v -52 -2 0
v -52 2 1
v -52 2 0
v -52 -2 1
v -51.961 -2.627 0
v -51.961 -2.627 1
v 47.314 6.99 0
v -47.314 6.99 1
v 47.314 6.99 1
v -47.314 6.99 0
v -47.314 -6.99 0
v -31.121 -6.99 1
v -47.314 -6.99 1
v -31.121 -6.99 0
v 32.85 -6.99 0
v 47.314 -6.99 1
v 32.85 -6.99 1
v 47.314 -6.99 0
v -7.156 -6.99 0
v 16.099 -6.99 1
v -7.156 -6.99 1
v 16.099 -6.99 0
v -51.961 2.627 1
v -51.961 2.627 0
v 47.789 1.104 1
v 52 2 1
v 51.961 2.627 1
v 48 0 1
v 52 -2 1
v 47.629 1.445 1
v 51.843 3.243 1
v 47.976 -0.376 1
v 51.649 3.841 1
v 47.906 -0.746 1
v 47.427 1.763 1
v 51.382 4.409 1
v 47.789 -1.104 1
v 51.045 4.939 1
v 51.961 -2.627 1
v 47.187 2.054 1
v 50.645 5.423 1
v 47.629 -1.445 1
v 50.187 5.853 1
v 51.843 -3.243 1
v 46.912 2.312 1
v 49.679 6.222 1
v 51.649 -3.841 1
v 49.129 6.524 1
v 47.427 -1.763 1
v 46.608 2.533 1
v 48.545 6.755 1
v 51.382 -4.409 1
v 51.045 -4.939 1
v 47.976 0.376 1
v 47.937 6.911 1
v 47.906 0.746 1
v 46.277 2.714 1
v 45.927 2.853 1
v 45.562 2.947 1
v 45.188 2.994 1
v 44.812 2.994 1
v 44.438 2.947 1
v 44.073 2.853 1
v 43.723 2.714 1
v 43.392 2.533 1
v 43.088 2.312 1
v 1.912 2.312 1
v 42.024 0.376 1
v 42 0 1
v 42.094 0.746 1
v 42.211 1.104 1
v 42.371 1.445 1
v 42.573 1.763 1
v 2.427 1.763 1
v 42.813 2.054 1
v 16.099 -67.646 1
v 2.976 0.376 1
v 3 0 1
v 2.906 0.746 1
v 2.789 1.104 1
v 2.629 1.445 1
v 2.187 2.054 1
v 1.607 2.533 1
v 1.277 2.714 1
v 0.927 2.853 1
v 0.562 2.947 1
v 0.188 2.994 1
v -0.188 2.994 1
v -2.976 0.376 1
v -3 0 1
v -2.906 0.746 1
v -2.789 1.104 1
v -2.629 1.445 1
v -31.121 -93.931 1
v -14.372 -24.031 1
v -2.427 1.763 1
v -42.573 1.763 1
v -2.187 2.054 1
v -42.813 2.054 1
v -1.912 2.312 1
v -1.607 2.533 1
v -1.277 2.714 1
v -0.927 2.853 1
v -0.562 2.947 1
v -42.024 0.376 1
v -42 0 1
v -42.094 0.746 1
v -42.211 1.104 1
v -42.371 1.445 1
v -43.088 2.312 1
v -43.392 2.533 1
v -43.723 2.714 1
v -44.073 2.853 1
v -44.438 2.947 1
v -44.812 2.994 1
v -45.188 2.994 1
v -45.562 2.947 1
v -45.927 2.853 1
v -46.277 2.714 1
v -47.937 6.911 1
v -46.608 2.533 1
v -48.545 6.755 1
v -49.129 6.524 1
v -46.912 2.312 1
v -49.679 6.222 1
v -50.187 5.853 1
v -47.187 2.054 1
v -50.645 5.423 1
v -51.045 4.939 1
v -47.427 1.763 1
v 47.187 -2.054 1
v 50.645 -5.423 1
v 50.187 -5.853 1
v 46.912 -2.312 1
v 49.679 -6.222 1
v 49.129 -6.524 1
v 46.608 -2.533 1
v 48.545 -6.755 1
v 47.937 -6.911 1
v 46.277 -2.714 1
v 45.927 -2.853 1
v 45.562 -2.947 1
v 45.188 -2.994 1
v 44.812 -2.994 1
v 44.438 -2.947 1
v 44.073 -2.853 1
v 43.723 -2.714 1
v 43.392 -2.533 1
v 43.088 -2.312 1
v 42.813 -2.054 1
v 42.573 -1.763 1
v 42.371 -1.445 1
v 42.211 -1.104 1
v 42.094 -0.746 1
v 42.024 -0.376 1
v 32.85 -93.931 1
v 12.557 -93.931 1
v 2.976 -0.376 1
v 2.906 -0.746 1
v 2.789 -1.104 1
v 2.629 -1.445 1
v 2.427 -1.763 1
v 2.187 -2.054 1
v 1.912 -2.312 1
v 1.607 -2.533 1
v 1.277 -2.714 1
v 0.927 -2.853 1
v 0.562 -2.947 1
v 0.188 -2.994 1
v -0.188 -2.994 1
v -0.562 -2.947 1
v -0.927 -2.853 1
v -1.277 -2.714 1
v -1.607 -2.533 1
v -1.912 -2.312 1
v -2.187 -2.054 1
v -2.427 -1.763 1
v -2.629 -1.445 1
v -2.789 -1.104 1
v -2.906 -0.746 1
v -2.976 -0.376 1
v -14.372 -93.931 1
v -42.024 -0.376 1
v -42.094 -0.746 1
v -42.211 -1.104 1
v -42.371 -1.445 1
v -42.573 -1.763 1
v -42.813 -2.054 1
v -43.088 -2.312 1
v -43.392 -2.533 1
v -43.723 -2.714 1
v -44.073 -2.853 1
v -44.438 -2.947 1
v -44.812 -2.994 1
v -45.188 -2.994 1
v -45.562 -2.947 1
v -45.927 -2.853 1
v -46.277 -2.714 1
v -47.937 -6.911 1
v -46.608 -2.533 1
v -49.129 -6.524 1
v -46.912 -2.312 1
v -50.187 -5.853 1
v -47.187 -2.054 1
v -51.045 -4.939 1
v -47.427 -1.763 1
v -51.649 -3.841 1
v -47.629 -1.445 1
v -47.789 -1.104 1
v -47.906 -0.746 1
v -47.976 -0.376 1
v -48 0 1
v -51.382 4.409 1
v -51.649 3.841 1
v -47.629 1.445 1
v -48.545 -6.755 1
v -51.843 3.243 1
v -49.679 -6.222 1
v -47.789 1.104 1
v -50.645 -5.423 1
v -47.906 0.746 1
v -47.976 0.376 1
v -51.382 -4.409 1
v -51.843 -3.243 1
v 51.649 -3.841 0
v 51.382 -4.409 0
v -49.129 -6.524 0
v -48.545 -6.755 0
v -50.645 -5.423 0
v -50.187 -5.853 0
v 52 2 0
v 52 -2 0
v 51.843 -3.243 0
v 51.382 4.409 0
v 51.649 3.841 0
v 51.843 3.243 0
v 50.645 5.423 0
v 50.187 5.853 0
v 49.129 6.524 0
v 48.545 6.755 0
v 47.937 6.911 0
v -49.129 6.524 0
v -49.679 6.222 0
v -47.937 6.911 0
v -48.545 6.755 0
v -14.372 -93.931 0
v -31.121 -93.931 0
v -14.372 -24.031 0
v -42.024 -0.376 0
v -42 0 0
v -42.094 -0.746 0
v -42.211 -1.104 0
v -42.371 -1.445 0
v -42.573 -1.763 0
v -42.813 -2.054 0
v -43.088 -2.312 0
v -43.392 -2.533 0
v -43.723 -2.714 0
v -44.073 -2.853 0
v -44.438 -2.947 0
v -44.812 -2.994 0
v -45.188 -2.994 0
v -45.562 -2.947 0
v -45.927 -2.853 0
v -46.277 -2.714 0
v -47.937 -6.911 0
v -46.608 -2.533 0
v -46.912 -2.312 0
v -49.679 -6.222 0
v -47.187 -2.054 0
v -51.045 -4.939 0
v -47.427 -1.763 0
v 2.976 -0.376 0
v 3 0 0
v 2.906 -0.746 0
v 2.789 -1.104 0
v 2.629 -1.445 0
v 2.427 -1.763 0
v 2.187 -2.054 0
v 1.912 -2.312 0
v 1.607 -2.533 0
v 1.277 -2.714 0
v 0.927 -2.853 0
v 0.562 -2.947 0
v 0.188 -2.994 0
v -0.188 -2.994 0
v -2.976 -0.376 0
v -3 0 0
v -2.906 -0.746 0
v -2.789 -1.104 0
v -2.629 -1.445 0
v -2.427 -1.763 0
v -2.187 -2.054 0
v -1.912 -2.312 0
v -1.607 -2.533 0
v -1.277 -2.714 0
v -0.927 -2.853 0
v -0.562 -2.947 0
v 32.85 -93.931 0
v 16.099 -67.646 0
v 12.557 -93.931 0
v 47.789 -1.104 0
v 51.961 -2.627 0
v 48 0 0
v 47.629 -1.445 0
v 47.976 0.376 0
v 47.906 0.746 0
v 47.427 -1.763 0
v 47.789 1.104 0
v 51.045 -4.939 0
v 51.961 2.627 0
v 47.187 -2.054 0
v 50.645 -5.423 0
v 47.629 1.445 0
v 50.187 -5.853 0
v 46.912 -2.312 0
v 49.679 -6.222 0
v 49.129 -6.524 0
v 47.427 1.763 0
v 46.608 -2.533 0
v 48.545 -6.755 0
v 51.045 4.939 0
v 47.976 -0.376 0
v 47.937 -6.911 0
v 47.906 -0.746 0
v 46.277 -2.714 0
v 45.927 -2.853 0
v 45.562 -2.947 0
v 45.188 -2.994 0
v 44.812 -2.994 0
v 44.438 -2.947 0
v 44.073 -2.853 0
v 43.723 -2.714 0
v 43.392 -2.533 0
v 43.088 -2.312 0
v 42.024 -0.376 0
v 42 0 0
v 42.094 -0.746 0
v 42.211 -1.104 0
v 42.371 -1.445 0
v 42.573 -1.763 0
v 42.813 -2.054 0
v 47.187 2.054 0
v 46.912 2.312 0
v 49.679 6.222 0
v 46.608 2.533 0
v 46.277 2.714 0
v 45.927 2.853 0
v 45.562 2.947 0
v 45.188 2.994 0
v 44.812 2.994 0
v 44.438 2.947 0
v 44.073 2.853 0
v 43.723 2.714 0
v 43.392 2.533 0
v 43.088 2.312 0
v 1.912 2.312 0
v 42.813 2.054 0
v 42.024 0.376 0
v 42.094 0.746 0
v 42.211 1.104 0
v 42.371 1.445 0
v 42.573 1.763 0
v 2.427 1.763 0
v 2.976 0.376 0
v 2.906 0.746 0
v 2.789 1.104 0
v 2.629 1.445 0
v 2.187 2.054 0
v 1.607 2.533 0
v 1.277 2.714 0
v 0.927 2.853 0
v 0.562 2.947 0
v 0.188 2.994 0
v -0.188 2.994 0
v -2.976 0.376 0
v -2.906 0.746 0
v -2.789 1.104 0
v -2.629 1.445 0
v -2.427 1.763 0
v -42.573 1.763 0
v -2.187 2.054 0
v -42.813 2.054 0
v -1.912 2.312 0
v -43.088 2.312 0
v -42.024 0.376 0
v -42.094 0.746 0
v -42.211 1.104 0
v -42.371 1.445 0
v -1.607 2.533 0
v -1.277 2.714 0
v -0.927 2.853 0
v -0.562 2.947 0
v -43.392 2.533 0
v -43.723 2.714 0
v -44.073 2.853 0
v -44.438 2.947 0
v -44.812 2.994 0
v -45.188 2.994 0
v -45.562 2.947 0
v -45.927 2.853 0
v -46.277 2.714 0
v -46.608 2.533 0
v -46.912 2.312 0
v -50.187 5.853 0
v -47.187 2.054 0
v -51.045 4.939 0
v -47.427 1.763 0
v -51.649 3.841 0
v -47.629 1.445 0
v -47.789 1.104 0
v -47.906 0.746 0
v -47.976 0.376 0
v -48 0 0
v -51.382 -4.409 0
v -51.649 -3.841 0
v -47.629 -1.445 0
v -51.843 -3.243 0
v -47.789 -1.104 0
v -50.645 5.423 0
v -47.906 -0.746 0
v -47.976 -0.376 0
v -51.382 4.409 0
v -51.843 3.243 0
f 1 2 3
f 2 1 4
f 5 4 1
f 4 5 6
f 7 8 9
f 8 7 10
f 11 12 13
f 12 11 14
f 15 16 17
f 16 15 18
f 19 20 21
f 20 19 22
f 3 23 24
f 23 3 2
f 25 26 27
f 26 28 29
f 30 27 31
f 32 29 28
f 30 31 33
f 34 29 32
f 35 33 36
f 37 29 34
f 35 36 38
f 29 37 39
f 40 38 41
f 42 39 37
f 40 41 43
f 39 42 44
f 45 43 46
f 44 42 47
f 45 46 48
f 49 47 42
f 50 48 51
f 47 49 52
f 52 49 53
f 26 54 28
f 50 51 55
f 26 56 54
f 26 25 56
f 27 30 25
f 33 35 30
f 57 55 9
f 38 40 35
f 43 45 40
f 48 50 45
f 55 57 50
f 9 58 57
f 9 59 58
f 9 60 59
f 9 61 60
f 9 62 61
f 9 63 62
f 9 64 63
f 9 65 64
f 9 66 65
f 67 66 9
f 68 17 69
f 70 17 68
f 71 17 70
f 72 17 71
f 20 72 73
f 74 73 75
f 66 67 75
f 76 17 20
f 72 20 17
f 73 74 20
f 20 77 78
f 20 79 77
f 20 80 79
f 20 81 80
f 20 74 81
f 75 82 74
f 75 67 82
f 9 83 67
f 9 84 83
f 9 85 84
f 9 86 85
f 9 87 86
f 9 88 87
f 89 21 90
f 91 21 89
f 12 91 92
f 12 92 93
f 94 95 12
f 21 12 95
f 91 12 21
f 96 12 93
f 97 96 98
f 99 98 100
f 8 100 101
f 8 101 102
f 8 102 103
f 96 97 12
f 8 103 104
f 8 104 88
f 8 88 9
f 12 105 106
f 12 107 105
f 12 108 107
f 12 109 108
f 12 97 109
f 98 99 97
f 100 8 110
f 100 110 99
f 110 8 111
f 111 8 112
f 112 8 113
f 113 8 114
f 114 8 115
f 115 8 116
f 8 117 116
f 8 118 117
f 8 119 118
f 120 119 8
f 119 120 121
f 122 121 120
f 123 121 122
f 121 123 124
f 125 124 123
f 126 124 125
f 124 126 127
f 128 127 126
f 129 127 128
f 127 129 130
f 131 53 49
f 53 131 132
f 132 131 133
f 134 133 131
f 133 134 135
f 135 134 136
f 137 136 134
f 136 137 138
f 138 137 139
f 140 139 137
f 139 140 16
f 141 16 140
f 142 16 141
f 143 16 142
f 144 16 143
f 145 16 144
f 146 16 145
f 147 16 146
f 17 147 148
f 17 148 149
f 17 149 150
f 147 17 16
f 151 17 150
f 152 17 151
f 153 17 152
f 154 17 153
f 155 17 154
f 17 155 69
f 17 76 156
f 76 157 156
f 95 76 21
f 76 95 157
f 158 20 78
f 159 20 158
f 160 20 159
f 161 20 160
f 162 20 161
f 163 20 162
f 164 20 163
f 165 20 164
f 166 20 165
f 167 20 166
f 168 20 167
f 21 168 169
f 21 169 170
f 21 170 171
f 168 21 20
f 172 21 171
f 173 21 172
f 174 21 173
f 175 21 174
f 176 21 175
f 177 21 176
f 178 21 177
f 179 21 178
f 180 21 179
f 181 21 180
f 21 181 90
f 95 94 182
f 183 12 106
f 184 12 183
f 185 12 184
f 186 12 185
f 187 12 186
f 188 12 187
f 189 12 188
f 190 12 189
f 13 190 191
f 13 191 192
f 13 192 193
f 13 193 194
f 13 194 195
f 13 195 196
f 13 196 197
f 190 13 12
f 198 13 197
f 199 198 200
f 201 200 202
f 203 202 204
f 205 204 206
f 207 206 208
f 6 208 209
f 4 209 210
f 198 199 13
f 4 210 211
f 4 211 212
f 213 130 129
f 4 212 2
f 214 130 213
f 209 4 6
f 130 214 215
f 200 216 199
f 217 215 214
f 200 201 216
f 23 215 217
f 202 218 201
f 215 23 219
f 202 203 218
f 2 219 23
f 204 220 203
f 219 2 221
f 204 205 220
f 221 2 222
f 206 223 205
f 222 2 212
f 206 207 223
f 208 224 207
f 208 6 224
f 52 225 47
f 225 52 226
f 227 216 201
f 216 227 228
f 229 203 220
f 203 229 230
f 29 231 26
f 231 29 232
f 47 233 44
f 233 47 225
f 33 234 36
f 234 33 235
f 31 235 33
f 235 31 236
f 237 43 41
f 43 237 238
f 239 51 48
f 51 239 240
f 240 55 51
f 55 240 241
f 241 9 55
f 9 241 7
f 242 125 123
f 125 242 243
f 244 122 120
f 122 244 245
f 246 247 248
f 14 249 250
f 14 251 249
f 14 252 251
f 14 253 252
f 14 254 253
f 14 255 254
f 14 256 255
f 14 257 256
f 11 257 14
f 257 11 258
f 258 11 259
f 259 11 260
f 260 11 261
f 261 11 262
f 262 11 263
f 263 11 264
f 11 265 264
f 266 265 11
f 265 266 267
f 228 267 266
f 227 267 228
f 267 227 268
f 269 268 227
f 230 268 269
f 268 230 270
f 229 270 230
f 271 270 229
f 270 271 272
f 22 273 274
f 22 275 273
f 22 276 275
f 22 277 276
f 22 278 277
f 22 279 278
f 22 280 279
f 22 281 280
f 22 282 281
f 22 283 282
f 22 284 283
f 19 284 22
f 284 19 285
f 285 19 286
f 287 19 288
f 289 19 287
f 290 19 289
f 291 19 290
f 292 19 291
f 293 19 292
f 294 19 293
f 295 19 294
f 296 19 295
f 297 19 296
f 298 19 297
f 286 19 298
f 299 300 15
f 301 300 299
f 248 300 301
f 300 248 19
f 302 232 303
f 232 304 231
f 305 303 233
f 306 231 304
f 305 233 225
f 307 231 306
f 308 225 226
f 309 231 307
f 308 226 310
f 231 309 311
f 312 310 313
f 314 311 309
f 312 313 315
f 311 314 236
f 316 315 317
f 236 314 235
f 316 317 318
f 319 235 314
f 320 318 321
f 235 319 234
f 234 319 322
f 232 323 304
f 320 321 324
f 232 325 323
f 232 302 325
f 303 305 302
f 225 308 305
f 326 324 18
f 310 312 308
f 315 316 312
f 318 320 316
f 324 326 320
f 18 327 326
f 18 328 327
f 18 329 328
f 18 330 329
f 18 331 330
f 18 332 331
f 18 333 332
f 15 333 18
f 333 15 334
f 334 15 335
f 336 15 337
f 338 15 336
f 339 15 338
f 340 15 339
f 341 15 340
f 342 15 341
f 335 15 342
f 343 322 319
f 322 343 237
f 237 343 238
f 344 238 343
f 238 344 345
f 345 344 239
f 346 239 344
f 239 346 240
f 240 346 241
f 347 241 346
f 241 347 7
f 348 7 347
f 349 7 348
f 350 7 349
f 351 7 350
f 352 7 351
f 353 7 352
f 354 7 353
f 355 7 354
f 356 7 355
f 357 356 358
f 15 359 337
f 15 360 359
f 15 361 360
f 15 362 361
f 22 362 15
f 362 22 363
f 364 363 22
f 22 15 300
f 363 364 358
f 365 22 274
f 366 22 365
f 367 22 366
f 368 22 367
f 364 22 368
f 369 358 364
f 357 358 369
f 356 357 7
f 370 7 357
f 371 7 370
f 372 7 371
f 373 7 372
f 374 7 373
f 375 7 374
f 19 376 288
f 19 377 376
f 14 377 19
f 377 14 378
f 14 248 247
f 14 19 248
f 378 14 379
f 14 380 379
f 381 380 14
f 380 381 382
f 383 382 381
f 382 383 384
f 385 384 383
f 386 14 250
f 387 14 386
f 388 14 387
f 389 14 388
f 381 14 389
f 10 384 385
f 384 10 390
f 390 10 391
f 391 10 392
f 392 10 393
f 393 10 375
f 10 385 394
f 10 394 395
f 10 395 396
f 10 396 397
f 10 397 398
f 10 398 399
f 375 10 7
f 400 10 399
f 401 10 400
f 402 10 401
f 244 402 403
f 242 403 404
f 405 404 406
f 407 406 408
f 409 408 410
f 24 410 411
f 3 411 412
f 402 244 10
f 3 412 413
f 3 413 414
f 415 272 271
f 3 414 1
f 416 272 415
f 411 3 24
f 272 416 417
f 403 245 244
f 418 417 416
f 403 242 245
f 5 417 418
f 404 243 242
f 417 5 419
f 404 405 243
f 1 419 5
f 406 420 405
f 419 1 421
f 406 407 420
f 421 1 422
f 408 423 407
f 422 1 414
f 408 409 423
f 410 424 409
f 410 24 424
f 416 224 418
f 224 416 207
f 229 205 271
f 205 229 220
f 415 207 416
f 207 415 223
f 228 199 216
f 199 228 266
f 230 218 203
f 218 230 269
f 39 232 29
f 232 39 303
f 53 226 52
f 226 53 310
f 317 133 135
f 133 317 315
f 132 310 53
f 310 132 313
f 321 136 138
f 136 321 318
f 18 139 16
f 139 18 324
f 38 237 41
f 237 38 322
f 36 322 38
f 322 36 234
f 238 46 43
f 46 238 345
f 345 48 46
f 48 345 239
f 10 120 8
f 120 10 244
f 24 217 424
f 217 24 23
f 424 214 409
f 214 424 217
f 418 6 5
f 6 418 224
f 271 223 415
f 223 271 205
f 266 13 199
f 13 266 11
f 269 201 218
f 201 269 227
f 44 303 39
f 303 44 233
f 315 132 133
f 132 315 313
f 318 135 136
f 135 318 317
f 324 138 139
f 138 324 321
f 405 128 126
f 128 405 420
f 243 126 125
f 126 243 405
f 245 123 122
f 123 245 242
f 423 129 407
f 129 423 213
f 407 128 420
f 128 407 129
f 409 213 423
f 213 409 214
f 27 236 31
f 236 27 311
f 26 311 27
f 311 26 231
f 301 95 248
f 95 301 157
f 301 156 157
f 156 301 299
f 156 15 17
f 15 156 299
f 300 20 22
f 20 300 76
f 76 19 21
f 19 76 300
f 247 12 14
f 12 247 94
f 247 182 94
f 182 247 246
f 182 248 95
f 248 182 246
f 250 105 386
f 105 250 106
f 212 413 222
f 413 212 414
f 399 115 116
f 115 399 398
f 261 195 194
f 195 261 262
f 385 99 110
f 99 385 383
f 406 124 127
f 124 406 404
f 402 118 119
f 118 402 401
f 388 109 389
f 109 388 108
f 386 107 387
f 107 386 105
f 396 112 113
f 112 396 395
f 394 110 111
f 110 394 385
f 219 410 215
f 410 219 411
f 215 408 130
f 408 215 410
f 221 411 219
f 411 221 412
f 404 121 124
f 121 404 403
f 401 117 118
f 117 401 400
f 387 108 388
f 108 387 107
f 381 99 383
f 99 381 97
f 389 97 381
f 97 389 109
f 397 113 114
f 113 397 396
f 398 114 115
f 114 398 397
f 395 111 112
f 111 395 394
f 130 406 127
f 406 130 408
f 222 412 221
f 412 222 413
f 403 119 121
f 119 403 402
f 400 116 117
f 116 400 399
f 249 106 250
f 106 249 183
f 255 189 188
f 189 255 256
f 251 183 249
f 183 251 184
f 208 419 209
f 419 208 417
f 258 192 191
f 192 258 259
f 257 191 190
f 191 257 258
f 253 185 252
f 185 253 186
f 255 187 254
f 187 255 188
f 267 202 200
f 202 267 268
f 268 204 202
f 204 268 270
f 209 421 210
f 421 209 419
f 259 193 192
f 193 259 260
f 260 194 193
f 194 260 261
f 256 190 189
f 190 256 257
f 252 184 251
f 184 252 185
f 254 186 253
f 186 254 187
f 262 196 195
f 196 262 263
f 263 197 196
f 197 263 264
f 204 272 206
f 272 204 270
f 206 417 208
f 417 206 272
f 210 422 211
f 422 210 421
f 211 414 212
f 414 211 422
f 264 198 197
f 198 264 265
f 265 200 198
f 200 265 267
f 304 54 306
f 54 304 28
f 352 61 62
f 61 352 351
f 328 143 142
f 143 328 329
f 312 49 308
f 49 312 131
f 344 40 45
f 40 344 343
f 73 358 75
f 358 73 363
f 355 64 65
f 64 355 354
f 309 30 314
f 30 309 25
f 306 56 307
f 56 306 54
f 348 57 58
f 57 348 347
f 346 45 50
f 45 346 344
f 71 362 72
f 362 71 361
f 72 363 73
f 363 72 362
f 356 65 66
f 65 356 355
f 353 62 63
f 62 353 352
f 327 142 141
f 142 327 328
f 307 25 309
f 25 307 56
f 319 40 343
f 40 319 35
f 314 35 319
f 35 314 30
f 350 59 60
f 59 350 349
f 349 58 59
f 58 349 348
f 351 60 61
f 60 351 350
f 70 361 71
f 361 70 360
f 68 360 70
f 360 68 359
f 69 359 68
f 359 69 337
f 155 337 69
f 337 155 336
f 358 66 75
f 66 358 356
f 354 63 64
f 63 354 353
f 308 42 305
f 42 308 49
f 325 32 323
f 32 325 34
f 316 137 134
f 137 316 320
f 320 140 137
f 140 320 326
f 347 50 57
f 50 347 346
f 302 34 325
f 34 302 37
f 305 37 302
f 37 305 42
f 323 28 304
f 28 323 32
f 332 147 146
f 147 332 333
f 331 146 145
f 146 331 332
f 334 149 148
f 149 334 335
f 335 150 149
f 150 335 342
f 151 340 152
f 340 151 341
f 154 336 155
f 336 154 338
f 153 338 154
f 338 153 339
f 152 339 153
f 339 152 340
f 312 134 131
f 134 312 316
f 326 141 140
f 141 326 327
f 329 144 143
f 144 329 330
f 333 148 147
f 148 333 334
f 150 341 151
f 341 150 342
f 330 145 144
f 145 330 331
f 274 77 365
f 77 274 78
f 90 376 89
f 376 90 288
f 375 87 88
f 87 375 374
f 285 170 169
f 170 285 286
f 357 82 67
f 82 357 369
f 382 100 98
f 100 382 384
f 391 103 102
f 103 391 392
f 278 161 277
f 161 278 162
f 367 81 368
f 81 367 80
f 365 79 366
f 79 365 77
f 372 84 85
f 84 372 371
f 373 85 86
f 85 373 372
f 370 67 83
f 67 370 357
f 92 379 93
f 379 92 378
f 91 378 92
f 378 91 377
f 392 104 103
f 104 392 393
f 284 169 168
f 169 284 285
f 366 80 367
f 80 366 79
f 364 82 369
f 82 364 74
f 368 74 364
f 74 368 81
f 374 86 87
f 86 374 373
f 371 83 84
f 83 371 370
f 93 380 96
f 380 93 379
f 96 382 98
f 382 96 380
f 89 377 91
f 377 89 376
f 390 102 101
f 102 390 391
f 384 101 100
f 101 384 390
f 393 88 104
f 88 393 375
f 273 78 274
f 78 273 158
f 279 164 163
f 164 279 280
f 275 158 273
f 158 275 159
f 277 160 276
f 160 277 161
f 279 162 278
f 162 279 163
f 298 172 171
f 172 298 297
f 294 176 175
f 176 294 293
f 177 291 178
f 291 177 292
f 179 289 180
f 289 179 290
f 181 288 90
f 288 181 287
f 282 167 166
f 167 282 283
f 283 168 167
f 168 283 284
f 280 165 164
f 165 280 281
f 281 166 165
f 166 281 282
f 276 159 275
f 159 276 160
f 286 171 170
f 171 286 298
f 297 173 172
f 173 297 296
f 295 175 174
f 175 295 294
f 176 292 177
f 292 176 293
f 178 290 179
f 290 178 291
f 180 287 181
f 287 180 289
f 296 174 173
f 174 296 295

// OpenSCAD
$fn = 50;


difference() {
	union() {
		translate(v = [0, 0, 0]) {
			rotate(a = [0, 0, 0]) {
				hull() {
					translate(v = [-47.0000000000, 2.0000000000, 0]) {
						rotate(a = [0, 0, 0]) {
							translate(v = [0, 0, 0]) {
								rotate(a = [0, 0, 0]) {
									cylinder(h = 1, r = 5);
								}
							}
						}
					}
					translate(v = [47.0000000000, 2.0000000000, 0]) {
						rotate(a = [0, 0, 0]) {
							translate(v = [0, 0, 0]) {
								rotate(a = [0, 0, 0]) {
									cylinder(h = 1, r = 5);
								}
							}
						}
					}
					translate(v = [-47.0000000000, -2.0000000000, 0]) {
						rotate(a = [0, 0, 0]) {
							translate(v = [0, 0, 0]) {
								rotate(a = [0, 0, 0]) {
									cylinder(h = 1, r = 5);
								}
							}
						}
					}
					translate(v = [47.0000000000, -2.0000000000, 0]) {
						rotate(a = [0, 0, 0]) {
							translate(v = [0, 0, 0]) {
								rotate(a = [0, 0, 0]) {
									cylinder(h = 1, r = 5);
								}
							}
						}
					}
				}
			}
		}
		translate(v = [0, 0, 0]) {
			rotate(a = [0, 0, 0]) {
				linear_extrude(height = 1) {
					text(font = "DejaVu Sans Mono:style=Bold", halign = "center", size = 95.0000000000, text = "N", valign = "top");
				}
			}
		}
	}
	union() {
		translate(v = [-45.0000000000, 0.0000000000, -125.0000000000]) {
			rotate(a = [0, 0, 0]) {
				cylinder(h = 250, r = 3.0000000000);
			}
		}
		translate(v = [45.0000000000, 0.0000000000, -125.0000000000]) {
			rotate(a = [0, 0, 0]) {
				cylinder(h = 250, r = 3.0000000000);
			}
		}
		translate(v = [45.0000000000, 0.0000000000, -125.0000000000]) {
			rotate(a = [0, 0, 0]) {
				cylinder(h = 250, r = 3.0000000000);
			}
		}
		translate(v = [0, 0, -125.0000000000]) {
			rotate(a = [0, 0, 0]) {
				cylinder(h = 250, r = 3.0000000000);
			}
		}
	}
}
